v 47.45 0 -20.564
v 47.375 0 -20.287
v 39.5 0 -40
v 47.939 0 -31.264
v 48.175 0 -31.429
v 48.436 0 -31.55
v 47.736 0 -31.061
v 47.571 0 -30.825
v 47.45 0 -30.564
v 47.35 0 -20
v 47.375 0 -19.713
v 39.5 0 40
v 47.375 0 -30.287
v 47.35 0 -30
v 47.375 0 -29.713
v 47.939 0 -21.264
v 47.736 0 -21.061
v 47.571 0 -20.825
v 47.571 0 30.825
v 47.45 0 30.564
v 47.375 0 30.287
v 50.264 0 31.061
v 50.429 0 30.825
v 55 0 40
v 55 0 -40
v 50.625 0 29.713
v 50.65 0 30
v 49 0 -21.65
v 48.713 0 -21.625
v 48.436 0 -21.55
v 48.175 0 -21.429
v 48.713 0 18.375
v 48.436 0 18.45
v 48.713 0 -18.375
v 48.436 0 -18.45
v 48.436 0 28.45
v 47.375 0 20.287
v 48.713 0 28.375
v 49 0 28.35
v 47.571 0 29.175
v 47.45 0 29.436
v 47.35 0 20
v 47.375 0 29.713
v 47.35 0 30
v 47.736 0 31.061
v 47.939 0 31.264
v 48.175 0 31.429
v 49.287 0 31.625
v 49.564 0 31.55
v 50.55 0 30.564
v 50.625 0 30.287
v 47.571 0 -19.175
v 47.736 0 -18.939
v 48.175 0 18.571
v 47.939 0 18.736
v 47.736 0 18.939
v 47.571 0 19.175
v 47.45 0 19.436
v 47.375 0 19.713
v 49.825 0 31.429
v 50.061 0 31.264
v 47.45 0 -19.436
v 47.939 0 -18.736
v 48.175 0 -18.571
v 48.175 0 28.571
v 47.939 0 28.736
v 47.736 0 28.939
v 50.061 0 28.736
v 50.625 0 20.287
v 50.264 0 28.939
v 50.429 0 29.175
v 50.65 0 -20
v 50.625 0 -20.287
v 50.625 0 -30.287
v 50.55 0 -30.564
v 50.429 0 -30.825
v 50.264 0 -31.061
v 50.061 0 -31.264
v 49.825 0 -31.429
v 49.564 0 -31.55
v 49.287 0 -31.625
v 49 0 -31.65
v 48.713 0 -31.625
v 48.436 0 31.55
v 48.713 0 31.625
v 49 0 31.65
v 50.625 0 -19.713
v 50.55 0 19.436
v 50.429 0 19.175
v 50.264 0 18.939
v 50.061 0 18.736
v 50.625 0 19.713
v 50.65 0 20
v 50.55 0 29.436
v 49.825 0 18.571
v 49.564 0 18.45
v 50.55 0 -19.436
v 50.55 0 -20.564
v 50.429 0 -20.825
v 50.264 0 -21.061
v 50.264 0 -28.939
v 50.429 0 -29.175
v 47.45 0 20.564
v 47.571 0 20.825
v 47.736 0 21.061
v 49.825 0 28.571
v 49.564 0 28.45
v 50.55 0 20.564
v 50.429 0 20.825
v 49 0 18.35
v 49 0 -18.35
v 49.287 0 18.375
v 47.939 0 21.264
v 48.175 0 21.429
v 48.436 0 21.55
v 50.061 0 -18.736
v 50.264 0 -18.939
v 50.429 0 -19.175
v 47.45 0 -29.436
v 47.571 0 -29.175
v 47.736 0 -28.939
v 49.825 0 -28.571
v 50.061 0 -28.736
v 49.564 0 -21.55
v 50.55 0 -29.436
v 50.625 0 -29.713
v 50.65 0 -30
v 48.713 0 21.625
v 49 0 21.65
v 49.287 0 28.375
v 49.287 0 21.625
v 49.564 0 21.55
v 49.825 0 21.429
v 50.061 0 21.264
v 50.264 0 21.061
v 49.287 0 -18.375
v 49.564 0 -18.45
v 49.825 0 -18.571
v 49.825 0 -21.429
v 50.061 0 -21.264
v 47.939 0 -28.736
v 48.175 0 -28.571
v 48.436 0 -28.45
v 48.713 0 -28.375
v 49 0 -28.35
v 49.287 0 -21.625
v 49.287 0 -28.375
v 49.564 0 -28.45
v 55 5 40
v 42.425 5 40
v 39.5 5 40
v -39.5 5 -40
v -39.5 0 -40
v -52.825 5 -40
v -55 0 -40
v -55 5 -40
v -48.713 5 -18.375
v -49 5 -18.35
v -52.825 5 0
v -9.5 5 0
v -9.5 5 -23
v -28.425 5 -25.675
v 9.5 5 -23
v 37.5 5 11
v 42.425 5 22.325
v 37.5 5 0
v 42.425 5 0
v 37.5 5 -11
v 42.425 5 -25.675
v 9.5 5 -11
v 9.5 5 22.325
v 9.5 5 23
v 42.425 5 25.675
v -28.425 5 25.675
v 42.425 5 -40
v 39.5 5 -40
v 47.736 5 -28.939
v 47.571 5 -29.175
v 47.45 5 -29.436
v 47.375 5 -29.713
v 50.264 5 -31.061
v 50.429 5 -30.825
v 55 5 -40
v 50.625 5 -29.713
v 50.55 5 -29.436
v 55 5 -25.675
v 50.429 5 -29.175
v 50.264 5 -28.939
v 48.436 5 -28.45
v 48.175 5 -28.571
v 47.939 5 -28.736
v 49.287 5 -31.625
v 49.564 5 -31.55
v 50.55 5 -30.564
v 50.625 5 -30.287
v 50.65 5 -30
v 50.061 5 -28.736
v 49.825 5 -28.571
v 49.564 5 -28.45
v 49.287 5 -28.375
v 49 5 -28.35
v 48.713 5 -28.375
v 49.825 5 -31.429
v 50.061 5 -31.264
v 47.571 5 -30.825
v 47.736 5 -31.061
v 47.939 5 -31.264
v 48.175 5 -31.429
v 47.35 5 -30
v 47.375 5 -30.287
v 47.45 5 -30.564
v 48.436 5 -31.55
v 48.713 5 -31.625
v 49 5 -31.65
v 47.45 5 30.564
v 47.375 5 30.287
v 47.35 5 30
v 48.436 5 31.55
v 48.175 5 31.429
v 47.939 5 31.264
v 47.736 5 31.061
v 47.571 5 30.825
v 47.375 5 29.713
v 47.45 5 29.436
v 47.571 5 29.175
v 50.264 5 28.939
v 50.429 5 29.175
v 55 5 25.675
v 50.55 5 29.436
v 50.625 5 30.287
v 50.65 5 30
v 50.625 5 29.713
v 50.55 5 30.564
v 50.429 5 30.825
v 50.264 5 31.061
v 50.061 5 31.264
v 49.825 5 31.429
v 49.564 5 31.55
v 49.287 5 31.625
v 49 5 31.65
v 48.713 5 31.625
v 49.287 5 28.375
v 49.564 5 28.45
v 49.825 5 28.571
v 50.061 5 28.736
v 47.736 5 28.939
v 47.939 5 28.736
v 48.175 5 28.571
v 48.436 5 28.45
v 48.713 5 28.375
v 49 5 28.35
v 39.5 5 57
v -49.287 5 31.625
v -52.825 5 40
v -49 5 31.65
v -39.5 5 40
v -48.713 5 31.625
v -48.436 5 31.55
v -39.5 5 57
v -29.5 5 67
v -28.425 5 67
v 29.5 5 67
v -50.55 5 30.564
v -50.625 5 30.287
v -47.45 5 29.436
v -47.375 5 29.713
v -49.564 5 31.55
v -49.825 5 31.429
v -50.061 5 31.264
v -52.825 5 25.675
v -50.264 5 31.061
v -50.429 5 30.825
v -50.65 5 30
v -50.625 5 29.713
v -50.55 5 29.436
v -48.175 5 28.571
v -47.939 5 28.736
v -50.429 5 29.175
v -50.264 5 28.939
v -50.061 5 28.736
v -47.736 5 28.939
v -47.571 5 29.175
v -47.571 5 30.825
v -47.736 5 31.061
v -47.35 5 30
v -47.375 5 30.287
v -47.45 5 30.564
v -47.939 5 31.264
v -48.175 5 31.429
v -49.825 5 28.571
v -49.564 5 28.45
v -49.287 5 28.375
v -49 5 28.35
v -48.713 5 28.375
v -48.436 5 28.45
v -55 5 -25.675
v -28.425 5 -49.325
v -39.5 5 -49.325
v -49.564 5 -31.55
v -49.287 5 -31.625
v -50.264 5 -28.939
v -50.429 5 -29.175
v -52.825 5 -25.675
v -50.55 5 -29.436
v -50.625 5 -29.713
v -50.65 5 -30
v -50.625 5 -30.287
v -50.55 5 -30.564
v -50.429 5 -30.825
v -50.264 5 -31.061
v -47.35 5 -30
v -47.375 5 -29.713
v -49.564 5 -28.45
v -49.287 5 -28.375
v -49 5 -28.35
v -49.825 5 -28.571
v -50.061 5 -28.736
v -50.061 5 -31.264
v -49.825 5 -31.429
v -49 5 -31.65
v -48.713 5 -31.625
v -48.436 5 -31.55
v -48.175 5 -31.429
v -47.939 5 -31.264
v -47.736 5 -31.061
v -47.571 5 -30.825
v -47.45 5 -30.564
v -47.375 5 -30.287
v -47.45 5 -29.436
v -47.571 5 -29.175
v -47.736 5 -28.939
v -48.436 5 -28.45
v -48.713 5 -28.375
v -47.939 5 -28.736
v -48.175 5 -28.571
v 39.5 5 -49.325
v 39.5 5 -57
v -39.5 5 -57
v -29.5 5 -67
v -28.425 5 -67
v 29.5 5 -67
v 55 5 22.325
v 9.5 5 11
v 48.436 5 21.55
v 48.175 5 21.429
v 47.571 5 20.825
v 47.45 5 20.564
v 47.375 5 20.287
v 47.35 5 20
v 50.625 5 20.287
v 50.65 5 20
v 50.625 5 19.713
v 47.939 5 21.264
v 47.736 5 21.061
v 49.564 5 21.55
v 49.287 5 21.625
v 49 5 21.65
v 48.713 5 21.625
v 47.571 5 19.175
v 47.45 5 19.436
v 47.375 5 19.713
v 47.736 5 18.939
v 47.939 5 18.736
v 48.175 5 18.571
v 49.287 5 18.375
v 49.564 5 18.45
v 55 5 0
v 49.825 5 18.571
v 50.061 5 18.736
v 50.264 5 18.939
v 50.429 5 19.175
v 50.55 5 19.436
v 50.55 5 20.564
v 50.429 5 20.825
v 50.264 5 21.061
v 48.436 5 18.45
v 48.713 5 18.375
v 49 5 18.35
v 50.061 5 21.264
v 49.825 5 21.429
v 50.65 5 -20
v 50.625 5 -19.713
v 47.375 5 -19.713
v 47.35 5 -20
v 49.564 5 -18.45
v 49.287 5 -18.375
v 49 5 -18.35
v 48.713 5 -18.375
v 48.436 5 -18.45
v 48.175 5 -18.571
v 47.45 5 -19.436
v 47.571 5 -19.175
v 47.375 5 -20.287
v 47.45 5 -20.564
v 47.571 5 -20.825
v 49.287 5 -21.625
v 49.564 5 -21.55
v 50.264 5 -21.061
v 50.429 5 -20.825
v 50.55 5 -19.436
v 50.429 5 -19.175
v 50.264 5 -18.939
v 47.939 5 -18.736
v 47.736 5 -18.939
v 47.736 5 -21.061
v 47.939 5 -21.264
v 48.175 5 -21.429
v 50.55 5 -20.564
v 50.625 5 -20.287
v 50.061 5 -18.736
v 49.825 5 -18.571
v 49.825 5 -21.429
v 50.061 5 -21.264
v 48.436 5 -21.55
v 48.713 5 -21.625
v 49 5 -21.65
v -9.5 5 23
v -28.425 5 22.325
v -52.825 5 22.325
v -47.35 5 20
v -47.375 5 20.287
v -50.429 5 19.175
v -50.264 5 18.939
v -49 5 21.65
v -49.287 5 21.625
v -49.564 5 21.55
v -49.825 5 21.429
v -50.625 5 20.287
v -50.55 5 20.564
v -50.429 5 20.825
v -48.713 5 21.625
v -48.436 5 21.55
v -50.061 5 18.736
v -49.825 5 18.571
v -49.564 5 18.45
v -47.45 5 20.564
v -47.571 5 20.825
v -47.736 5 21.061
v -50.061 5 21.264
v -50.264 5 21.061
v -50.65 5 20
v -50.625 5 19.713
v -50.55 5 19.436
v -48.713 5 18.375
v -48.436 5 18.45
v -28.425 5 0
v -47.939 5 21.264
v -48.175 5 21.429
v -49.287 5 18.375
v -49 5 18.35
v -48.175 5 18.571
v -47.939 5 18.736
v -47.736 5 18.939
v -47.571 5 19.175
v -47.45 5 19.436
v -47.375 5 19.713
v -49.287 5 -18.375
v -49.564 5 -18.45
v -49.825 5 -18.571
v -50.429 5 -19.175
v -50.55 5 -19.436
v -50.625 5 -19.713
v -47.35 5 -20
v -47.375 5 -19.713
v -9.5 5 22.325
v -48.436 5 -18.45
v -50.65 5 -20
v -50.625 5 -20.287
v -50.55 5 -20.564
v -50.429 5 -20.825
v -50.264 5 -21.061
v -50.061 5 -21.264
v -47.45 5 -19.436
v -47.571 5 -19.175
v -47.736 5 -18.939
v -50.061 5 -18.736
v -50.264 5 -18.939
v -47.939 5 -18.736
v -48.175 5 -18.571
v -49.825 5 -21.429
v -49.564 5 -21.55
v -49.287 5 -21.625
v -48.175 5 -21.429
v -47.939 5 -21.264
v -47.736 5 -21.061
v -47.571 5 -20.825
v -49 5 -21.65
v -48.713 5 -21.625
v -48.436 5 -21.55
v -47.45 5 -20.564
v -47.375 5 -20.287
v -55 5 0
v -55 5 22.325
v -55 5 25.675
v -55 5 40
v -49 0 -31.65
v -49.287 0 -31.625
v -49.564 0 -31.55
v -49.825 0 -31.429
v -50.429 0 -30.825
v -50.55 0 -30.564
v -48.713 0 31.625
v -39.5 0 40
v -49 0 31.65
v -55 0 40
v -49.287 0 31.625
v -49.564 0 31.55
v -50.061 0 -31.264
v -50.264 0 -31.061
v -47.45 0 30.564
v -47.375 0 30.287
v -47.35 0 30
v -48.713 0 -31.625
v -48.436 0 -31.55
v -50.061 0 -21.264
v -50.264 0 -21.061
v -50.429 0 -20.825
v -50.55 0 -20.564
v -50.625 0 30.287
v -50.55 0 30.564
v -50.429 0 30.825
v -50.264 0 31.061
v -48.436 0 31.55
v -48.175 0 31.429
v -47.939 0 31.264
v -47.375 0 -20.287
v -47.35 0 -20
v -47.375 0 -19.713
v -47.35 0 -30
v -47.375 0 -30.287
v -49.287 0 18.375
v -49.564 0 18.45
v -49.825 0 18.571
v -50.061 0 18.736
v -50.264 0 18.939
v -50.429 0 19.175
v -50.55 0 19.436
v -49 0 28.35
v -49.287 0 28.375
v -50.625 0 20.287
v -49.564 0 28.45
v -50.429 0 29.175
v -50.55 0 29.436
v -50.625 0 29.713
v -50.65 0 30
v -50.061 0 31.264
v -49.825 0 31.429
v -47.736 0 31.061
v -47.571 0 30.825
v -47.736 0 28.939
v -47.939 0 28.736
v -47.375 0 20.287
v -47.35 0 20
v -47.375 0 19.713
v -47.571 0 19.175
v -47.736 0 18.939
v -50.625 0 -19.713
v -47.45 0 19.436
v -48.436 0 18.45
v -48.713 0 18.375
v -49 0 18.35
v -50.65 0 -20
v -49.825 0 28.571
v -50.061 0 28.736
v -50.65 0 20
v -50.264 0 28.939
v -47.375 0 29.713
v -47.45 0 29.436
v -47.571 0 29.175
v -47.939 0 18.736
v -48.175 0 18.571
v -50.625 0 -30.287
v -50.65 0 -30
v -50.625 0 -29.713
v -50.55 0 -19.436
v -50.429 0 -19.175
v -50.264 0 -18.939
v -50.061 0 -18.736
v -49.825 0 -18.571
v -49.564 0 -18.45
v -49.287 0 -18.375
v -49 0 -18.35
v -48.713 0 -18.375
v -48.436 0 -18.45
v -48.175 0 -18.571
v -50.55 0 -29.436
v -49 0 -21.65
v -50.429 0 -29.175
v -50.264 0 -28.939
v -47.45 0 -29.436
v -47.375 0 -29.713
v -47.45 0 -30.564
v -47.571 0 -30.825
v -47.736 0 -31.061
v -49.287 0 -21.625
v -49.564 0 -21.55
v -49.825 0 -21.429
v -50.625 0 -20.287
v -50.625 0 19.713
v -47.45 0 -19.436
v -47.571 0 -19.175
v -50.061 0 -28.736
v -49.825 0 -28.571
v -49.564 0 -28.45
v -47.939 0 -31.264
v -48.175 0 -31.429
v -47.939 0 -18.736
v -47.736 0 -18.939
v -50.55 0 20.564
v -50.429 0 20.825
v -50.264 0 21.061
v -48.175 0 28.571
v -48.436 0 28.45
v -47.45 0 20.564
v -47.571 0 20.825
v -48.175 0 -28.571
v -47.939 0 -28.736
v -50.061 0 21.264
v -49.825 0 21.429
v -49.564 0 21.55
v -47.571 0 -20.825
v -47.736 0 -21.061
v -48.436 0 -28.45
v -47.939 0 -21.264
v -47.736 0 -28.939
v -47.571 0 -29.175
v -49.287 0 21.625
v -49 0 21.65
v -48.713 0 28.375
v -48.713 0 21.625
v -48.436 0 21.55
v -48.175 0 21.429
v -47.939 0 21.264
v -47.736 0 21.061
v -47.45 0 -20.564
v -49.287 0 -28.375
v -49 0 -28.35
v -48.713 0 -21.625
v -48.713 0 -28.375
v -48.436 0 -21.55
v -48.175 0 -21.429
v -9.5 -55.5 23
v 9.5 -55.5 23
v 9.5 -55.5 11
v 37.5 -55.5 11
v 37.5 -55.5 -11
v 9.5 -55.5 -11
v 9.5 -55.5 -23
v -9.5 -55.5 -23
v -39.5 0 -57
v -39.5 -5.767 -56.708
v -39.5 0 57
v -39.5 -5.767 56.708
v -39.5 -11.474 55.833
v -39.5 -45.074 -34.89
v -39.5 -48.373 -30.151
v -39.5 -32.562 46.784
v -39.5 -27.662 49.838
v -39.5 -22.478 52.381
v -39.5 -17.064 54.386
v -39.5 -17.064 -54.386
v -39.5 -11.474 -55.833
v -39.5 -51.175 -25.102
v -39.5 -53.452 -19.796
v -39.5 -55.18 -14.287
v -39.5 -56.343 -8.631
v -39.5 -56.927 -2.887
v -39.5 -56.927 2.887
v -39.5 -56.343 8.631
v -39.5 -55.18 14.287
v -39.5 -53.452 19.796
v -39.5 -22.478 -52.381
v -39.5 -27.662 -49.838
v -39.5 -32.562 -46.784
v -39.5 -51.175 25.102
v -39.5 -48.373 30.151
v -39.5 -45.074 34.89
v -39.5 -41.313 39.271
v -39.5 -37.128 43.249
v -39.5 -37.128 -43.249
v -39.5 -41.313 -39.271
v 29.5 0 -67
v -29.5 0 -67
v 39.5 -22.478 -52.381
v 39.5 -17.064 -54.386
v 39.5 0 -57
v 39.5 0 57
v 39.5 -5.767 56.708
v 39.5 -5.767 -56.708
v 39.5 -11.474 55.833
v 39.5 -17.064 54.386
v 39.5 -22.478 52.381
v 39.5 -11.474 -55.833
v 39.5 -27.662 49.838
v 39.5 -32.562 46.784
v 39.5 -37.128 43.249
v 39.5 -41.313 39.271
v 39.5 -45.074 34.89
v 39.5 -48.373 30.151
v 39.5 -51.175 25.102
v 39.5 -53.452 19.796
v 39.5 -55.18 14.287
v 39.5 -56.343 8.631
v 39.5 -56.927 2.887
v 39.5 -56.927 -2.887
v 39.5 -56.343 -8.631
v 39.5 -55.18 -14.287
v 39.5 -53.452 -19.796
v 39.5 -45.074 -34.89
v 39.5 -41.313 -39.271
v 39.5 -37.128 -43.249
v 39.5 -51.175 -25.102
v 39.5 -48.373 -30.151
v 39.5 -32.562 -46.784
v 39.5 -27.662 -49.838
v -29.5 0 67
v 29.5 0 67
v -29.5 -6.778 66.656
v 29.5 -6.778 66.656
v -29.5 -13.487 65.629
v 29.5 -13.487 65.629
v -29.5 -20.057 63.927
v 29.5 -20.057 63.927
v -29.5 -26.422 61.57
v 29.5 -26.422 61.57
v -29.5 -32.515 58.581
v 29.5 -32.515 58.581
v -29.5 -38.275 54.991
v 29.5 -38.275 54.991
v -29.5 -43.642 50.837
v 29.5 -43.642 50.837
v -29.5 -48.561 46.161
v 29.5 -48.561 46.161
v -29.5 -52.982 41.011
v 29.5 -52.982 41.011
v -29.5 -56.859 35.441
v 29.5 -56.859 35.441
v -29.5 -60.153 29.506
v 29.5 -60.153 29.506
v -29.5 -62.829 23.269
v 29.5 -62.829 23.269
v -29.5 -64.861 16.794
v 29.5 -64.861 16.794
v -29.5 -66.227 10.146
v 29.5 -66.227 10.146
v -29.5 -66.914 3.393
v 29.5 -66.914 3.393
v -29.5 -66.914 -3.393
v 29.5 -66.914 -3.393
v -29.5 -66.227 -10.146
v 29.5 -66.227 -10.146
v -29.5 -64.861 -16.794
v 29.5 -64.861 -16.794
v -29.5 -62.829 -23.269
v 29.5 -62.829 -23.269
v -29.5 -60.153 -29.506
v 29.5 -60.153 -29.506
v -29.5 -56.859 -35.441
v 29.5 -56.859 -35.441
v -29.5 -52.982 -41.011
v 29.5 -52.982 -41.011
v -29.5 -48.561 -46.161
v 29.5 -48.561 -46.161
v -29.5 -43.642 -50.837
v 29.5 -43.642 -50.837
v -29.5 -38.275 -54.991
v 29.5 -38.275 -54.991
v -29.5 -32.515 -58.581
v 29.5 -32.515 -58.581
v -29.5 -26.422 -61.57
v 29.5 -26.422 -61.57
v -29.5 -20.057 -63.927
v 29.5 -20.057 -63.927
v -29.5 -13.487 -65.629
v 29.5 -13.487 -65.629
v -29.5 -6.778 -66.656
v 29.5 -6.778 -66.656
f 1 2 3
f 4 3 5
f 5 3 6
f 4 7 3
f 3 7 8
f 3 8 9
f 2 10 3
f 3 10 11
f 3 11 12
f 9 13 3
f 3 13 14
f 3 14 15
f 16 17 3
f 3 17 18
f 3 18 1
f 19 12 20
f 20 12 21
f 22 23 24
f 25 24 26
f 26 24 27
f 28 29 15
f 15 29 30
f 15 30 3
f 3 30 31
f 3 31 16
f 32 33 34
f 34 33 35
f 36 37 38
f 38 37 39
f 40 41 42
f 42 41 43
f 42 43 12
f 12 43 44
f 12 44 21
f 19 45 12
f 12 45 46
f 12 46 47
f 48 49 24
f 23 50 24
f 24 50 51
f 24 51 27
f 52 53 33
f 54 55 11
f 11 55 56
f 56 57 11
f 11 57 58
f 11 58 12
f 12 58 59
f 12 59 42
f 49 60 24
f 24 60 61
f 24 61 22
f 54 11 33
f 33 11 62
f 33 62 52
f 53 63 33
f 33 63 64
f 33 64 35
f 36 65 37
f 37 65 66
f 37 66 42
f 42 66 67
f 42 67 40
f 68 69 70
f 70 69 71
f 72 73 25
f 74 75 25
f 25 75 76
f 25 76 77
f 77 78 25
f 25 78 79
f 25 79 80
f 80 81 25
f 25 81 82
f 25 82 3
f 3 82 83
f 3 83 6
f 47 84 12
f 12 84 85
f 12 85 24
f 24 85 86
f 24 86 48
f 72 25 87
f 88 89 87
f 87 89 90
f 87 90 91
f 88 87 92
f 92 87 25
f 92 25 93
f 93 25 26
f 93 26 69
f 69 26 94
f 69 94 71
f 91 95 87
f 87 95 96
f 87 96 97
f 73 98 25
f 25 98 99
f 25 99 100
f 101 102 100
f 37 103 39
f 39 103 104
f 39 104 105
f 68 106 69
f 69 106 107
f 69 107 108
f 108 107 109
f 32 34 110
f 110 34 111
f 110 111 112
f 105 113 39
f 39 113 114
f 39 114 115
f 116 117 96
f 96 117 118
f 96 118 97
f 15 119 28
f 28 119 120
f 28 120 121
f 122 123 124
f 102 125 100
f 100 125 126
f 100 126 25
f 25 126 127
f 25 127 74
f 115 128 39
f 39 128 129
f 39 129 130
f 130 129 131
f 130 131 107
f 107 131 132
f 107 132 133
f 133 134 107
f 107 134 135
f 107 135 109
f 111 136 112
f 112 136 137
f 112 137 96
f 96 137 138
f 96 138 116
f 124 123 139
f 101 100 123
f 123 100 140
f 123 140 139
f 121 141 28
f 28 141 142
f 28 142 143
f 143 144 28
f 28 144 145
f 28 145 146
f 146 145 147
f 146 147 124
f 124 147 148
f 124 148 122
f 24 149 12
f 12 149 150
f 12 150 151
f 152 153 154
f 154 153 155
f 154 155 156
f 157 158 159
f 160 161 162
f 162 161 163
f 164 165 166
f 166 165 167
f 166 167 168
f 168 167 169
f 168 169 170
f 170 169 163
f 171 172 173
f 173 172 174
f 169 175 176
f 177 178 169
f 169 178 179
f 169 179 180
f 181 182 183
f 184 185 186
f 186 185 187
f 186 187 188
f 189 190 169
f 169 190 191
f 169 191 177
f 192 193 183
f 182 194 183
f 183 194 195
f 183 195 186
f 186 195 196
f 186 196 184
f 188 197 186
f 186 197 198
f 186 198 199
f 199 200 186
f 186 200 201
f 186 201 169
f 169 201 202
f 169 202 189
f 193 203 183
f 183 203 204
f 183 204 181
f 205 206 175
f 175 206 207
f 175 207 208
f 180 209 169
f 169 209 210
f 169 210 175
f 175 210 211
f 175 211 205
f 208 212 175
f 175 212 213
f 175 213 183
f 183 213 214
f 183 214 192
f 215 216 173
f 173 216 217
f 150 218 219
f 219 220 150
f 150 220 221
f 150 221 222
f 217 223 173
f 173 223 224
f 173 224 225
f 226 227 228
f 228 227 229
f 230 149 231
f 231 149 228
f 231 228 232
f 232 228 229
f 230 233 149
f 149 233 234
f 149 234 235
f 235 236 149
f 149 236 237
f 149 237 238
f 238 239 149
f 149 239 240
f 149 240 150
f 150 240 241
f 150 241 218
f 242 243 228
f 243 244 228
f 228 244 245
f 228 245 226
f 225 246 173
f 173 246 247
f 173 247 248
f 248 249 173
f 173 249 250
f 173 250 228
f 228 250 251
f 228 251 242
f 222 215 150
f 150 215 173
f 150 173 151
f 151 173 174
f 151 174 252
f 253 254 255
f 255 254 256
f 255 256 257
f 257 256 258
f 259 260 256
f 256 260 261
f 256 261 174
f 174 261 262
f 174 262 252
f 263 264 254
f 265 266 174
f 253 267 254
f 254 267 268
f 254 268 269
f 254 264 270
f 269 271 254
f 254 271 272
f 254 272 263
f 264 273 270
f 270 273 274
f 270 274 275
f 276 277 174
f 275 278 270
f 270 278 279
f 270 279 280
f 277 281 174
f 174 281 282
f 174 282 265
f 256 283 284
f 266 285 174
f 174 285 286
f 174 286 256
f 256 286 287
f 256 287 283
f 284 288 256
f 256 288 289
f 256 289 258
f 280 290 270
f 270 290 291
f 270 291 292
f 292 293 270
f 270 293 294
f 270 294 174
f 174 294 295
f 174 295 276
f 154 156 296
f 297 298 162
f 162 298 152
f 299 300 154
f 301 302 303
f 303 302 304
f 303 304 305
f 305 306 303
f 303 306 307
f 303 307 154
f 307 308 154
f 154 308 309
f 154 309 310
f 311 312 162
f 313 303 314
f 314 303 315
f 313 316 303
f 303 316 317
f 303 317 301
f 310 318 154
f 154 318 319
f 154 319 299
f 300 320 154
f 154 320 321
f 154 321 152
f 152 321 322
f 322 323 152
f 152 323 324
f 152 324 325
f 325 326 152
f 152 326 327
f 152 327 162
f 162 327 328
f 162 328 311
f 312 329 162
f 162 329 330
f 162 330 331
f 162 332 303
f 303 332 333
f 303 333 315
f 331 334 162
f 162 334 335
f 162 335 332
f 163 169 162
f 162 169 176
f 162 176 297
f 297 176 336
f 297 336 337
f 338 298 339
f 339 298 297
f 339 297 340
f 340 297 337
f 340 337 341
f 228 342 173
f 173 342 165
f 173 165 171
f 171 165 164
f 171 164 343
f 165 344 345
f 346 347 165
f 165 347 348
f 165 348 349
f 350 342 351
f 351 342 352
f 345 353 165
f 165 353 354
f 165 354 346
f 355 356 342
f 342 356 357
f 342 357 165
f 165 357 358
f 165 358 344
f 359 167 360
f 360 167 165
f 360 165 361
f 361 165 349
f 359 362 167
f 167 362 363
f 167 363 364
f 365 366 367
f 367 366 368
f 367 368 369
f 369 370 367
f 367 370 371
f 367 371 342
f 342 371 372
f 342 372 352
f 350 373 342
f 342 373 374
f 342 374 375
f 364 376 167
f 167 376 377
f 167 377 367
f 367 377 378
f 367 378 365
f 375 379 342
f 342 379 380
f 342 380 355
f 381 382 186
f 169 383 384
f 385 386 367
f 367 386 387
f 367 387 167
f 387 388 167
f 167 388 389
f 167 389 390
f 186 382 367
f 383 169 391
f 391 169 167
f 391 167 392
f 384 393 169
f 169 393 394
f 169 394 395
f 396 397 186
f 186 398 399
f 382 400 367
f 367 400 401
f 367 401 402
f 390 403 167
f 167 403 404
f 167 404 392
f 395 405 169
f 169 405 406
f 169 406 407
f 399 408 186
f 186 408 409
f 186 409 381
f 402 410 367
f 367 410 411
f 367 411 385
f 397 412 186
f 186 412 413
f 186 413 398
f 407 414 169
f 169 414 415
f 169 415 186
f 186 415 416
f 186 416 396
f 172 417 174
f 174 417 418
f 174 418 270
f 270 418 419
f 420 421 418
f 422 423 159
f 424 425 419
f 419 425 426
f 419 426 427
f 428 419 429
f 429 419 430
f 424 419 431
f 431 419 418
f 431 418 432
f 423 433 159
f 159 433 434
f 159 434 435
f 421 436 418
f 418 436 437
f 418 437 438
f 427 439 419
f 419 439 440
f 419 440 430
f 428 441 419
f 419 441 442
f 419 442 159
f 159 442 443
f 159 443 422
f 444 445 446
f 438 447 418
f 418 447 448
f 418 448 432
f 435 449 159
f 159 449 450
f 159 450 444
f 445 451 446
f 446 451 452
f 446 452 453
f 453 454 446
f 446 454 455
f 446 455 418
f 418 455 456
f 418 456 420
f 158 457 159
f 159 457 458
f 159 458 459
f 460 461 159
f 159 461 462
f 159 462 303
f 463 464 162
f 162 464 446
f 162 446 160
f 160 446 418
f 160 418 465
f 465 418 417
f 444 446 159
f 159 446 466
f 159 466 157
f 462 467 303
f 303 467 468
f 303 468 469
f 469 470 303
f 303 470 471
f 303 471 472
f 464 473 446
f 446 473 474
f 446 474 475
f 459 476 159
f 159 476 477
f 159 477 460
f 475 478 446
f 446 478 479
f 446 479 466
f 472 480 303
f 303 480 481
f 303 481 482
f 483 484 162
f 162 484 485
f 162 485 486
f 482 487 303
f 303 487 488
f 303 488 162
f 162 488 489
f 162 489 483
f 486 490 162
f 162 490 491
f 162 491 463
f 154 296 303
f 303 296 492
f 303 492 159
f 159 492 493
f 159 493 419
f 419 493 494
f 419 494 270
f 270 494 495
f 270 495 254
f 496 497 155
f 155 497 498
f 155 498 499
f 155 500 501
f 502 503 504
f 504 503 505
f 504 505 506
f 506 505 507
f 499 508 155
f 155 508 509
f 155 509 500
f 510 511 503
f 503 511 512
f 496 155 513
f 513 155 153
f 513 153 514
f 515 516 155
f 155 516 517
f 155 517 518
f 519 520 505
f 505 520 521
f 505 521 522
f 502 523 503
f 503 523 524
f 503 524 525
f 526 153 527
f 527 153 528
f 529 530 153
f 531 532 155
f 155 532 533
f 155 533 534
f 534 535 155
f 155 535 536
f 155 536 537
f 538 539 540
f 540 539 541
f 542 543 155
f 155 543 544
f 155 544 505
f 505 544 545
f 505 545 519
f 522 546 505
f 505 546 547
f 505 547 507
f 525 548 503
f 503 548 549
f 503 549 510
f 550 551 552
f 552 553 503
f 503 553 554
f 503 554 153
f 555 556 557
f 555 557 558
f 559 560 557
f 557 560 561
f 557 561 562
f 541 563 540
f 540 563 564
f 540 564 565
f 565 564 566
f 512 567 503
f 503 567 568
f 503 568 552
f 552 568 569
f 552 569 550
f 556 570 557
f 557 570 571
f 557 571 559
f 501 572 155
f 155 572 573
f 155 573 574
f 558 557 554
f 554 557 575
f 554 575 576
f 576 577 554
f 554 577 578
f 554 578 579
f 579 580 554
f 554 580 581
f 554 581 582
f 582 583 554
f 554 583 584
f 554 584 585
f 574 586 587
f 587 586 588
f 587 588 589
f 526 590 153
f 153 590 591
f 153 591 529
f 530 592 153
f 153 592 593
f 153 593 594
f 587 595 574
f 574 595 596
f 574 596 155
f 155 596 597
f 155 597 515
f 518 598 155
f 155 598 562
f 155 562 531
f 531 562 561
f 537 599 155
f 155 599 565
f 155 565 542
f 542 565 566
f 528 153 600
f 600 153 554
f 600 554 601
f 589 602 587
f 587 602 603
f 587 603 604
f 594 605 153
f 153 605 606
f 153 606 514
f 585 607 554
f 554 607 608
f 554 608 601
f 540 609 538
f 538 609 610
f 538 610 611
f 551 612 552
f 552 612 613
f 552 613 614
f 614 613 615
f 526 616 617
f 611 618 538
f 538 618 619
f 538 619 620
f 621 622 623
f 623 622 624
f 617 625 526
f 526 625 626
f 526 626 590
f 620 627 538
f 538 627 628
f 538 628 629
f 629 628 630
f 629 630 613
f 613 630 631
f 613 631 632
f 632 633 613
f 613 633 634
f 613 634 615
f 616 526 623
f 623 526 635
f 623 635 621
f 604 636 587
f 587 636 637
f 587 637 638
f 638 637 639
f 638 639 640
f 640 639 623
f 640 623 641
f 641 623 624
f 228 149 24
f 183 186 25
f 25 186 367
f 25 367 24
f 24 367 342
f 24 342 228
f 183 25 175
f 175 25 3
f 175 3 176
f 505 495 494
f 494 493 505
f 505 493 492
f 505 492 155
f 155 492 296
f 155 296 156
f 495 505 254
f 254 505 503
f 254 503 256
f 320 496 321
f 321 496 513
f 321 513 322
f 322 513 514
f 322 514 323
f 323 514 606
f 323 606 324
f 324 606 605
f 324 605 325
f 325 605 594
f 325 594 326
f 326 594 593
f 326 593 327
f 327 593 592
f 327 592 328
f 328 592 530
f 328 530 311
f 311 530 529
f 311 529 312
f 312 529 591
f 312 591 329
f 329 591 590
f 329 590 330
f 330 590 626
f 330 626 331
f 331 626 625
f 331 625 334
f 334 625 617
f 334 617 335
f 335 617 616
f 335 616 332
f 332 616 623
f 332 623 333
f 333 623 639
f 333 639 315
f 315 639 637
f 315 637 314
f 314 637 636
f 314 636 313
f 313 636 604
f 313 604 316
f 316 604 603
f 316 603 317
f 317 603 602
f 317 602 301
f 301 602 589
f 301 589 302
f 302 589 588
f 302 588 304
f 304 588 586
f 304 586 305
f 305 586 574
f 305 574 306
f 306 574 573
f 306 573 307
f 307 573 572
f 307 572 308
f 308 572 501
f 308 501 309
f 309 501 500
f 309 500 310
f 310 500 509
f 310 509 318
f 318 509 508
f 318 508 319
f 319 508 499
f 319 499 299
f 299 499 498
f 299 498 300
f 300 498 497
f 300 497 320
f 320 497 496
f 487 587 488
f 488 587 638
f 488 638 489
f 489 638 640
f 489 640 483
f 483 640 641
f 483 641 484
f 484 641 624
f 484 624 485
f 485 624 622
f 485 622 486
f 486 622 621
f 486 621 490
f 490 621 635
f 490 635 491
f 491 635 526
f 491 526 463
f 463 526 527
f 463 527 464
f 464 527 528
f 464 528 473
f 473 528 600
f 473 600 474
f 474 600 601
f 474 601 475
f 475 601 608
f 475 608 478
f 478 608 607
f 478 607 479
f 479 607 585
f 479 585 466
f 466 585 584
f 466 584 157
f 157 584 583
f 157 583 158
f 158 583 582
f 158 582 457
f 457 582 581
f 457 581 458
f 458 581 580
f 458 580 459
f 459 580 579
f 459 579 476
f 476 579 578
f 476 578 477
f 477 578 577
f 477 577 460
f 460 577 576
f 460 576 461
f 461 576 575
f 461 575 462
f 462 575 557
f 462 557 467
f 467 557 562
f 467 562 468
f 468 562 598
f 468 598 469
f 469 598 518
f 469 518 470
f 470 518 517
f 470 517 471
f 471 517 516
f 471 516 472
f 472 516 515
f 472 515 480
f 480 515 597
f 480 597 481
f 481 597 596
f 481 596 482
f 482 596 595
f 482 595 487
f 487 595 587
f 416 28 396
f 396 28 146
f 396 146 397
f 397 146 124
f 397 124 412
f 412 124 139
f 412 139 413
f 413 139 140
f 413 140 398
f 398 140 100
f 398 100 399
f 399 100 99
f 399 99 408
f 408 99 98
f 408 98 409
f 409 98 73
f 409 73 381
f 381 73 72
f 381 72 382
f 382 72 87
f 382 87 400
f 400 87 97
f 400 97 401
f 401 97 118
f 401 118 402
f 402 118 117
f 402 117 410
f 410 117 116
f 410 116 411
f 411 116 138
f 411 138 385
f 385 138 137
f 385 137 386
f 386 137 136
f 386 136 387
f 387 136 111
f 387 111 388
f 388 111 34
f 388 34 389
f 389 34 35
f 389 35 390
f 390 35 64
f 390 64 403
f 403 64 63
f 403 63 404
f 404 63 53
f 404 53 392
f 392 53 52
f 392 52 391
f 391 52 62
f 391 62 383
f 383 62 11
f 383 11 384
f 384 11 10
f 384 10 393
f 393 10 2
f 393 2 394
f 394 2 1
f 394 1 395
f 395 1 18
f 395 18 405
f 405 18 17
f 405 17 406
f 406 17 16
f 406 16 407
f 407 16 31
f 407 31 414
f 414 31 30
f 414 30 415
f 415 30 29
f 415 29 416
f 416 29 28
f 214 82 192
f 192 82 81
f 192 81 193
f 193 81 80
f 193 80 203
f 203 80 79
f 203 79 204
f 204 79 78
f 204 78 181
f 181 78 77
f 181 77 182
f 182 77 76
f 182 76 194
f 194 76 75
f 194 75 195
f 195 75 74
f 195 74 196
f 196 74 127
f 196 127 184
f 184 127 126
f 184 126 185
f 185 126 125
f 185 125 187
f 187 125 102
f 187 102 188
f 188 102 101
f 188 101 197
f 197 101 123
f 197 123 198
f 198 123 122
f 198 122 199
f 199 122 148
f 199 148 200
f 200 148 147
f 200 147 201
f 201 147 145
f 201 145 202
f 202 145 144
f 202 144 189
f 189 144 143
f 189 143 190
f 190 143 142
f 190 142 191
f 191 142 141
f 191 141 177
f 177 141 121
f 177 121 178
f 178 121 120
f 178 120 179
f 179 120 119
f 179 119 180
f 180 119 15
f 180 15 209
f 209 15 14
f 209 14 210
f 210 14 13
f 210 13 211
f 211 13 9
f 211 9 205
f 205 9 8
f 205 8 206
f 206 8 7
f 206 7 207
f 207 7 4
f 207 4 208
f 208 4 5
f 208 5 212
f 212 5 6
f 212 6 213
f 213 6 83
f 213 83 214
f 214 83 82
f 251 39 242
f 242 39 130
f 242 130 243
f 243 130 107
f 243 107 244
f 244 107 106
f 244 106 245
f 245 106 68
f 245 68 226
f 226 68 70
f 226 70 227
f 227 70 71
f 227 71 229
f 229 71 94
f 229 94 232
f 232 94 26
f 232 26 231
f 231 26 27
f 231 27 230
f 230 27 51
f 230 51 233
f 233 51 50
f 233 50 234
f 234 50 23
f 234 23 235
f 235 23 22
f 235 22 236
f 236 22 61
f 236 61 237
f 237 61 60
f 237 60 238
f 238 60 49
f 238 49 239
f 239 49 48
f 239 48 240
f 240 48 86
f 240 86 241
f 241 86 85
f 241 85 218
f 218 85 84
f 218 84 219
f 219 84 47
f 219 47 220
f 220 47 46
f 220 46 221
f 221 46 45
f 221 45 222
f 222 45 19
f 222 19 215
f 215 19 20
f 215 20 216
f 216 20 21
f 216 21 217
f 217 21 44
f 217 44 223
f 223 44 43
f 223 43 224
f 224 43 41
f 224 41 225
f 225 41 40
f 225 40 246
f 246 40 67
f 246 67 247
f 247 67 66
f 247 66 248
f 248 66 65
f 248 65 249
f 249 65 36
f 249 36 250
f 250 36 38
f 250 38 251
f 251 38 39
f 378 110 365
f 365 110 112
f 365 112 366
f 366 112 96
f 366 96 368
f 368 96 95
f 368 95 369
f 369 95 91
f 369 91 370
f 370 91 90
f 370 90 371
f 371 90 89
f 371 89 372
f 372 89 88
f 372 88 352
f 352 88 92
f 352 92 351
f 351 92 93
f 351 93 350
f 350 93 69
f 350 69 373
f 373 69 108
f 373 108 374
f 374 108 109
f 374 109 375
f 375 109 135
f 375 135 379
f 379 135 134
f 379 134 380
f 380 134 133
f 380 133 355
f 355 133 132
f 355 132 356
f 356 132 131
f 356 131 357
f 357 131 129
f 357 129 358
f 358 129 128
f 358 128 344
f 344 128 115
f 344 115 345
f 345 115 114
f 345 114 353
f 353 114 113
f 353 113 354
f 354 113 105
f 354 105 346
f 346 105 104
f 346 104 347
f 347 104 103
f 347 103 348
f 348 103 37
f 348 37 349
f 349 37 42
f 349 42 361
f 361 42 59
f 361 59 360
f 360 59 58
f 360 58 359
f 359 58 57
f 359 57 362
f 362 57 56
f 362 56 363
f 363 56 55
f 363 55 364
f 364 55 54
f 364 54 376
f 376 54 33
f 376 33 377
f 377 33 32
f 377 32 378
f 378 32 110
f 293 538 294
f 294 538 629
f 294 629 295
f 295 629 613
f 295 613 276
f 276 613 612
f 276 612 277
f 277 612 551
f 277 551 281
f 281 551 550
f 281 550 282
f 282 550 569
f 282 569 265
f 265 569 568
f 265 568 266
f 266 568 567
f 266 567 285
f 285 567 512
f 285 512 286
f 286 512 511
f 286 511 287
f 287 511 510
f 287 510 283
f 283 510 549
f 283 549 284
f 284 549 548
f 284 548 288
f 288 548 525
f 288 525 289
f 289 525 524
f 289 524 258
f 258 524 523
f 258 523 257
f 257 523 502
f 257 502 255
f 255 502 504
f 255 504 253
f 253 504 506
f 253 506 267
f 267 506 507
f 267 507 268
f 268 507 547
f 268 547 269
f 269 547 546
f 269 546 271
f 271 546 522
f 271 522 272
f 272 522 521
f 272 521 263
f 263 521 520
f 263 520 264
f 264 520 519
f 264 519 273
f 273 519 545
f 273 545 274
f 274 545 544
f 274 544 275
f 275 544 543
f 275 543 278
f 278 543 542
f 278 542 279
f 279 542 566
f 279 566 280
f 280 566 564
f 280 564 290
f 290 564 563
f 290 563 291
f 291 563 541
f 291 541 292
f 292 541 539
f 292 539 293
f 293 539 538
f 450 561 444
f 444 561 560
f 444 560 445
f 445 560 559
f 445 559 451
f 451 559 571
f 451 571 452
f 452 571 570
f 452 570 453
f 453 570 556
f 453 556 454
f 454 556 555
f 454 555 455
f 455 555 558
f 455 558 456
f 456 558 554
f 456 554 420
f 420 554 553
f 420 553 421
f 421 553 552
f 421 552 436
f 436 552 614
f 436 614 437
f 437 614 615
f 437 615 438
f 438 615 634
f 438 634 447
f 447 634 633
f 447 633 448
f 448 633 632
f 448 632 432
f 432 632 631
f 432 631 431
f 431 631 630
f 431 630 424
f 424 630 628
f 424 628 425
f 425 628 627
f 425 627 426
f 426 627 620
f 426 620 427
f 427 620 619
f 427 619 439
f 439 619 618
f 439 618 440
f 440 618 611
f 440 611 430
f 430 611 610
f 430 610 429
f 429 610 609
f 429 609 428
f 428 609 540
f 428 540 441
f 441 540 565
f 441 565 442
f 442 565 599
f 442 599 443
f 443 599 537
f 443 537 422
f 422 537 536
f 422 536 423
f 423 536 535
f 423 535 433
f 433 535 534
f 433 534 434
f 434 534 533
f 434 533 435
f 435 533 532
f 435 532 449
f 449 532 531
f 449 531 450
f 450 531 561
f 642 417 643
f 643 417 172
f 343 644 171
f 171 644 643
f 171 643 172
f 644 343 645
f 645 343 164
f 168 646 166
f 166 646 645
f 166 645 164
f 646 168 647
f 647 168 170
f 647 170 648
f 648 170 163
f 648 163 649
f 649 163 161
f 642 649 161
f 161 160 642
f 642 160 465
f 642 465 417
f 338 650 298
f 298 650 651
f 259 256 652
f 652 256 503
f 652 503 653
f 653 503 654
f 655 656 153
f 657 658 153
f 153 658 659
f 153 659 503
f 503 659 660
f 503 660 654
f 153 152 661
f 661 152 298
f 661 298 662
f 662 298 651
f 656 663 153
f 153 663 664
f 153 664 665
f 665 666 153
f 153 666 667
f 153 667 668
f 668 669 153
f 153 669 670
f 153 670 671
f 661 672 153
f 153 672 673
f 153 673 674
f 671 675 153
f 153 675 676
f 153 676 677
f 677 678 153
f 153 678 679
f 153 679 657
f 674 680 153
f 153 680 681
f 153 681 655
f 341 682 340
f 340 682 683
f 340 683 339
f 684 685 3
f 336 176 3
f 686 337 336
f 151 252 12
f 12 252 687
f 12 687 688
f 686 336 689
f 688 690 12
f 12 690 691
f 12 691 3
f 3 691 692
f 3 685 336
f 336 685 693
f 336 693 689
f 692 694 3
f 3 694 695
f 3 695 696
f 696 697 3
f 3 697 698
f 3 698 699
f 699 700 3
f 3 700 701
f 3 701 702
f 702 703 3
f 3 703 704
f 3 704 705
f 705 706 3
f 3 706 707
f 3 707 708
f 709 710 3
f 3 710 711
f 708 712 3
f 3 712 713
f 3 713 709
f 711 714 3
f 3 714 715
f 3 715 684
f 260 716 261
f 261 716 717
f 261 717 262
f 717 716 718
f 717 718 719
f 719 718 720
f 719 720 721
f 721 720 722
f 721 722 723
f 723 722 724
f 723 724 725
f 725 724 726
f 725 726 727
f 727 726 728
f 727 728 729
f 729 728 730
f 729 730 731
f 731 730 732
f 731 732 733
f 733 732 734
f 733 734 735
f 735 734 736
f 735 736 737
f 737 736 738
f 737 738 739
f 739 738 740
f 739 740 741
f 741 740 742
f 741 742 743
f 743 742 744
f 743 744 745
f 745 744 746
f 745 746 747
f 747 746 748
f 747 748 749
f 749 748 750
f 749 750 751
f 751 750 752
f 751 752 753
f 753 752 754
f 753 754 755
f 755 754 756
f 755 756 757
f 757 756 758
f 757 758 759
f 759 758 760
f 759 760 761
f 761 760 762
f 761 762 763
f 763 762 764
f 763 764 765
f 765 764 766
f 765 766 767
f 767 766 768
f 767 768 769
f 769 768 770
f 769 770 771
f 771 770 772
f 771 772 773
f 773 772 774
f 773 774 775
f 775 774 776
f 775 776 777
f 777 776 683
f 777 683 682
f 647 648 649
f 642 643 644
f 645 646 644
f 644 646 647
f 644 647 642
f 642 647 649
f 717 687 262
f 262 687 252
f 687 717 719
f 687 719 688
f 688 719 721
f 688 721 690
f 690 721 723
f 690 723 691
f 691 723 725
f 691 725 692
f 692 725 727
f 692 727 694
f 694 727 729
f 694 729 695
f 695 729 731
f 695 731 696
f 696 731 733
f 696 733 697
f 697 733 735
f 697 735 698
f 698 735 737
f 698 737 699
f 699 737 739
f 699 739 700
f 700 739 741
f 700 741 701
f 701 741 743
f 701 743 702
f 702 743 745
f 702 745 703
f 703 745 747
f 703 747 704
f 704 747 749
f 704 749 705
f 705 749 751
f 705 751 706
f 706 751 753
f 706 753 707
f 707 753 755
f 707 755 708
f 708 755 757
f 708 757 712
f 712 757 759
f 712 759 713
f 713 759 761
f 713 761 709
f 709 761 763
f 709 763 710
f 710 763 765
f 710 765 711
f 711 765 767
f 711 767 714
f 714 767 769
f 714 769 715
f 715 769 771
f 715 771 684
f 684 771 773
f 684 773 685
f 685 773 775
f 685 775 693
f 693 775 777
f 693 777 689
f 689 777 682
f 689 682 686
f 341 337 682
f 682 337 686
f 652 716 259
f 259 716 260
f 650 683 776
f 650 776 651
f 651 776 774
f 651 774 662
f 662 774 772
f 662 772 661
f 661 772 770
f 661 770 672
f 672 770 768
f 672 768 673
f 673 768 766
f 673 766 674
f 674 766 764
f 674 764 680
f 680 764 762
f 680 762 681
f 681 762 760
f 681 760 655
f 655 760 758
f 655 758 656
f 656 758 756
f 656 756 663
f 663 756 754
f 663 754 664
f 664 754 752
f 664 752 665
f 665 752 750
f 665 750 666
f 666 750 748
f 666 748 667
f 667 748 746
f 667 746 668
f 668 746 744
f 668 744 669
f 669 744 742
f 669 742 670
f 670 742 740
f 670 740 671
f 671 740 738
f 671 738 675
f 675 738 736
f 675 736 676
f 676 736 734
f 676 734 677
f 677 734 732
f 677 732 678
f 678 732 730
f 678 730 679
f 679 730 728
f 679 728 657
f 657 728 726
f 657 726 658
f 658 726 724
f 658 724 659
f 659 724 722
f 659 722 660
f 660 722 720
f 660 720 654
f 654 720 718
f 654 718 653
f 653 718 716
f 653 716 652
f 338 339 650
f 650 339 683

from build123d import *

# Parameters (mm, degrees)
SKETCH2_W           = 110
SKETCH2_H           = 80
SKETCH2_R           = 1.65
BOSS_EXTRUDE1_DEPTH = 5
SKETCH4_W           = 79
SKETCH4_H           = 27
BOSS_EXTRUDE2_DEPTH = 5
BOSS_EXTRUDE3_DEPTH = 79
SKETCH7_W           = 28
SKETCH7_H           = 22
CUT_EXTRUDE1_DEPTH  = 55.5
CHAMFER1_SIZE       = 10


with BuildPart() as part:
    # Sketch2 → Boss-Extrude1 (new body)
    with BuildSketch(Plane(origin=(0, 0, 0), x_dir=(1, 0, 0), z_dir=(0, 1, 0))):
        Rectangle(SKETCH2_W, SKETCH2_H)
        with Locations(Location((-49, 30, 0), (0, 0, 270))):
            Circle(SKETCH2_R, mode=Mode.SUBTRACT)
        with Locations(Location((-49, 20, 0), (0, 0, 270))):
            Circle(SKETCH2_R, mode=Mode.SUBTRACT)
        with Locations(Location((49, 20, 0), (0, 0, 90))):
            Circle(SKETCH2_R, mode=Mode.SUBTRACT)
        with Locations(Location((49, 30, 0), (0, 0, 90))):
            Circle(SKETCH2_R, mode=Mode.SUBTRACT)
        with Locations(Location((49, -30, 0), (0, 0, 270))):
            Circle(SKETCH2_R, mode=Mode.SUBTRACT)
        with Locations(Location((49, -20, 0), (0, 0, 270))):
            Circle(SKETCH2_R, mode=Mode.SUBTRACT)
        with Locations(Location((-49, -30, 0), (0, 0, 90))):
            Circle(SKETCH2_R, mode=Mode.SUBTRACT)
        with Locations(Location((-49, -20, 0), (0, 0, 90))):
            Circle(SKETCH2_R, mode=Mode.SUBTRACT)
        Polygon((9.5, -11), (9.5, -23), (-9.5, -23), (-9.5, 23), (9.5, 23), (9.5, 11), (37.5, 11), (37.5, -11), align=None, mode=Mode.SUBTRACT)
    extrude(amount=BOSS_EXTRUDE1_DEPTH)

    # Sketch4 → Boss-Extrude2 (add)
    with BuildSketch(Plane(origin=(0, 5, 0), x_dir=(1, 0, 0), z_dir=(0, 1, 0))):
        with Locations((0, 53.5)):
            Rectangle(SKETCH4_W, SKETCH4_H)
        with Locations((0, -53.5)):
            Rectangle(SKETCH4_W, SKETCH4_H)
    extrude(amount=-BOSS_EXTRUDE2_DEPTH)

    # Sketch6 → Boss-Extrude3 (add)
    with BuildSketch(Plane.ZY.offset(39.5)):
        with BuildLine():
            Line((-67, 0), (67, 0))
            ThreePointArc((67, 0), (0, -67), (-67, 0))
        make_face()
    extrude(amount=-BOSS_EXTRUDE3_DEPTH)

    # Sketch7 → Cut-Extrude1 (cut)
    with BuildSketch(Plane(origin=(0, 0, 0), x_dir=(1, 0, 0), z_dir=(0, 1, 0))):
        with Locations((23.5, 0)):
            Rectangle(SKETCH7_W, SKETCH7_H)
        Polygon((-9.5, 23), (-9.5, -23), (9.5, -23), (9.5, -11), (9.5, 11), (9.5, 23), align=None)
    extrude(amount=-CUT_EXTRUDE1_DEPTH, mode=Mode.SUBTRACT)

    # Chamfer1
    chamfer1_edges = [part.edges().sort_by_distance(p)[0] for p in [
        (39.5, -67, 0),
        (-39.5, -67, 0),
        (-39.5, 2.5, -67),
        (39.5, 2.5, -67),
        (39.5, 2.5, 67),
        (-39.5, 2.5, 67),
    ]]
    chamfer(chamfer1_edges, length=CHAMFER1_SIZE)


solid = part.part
